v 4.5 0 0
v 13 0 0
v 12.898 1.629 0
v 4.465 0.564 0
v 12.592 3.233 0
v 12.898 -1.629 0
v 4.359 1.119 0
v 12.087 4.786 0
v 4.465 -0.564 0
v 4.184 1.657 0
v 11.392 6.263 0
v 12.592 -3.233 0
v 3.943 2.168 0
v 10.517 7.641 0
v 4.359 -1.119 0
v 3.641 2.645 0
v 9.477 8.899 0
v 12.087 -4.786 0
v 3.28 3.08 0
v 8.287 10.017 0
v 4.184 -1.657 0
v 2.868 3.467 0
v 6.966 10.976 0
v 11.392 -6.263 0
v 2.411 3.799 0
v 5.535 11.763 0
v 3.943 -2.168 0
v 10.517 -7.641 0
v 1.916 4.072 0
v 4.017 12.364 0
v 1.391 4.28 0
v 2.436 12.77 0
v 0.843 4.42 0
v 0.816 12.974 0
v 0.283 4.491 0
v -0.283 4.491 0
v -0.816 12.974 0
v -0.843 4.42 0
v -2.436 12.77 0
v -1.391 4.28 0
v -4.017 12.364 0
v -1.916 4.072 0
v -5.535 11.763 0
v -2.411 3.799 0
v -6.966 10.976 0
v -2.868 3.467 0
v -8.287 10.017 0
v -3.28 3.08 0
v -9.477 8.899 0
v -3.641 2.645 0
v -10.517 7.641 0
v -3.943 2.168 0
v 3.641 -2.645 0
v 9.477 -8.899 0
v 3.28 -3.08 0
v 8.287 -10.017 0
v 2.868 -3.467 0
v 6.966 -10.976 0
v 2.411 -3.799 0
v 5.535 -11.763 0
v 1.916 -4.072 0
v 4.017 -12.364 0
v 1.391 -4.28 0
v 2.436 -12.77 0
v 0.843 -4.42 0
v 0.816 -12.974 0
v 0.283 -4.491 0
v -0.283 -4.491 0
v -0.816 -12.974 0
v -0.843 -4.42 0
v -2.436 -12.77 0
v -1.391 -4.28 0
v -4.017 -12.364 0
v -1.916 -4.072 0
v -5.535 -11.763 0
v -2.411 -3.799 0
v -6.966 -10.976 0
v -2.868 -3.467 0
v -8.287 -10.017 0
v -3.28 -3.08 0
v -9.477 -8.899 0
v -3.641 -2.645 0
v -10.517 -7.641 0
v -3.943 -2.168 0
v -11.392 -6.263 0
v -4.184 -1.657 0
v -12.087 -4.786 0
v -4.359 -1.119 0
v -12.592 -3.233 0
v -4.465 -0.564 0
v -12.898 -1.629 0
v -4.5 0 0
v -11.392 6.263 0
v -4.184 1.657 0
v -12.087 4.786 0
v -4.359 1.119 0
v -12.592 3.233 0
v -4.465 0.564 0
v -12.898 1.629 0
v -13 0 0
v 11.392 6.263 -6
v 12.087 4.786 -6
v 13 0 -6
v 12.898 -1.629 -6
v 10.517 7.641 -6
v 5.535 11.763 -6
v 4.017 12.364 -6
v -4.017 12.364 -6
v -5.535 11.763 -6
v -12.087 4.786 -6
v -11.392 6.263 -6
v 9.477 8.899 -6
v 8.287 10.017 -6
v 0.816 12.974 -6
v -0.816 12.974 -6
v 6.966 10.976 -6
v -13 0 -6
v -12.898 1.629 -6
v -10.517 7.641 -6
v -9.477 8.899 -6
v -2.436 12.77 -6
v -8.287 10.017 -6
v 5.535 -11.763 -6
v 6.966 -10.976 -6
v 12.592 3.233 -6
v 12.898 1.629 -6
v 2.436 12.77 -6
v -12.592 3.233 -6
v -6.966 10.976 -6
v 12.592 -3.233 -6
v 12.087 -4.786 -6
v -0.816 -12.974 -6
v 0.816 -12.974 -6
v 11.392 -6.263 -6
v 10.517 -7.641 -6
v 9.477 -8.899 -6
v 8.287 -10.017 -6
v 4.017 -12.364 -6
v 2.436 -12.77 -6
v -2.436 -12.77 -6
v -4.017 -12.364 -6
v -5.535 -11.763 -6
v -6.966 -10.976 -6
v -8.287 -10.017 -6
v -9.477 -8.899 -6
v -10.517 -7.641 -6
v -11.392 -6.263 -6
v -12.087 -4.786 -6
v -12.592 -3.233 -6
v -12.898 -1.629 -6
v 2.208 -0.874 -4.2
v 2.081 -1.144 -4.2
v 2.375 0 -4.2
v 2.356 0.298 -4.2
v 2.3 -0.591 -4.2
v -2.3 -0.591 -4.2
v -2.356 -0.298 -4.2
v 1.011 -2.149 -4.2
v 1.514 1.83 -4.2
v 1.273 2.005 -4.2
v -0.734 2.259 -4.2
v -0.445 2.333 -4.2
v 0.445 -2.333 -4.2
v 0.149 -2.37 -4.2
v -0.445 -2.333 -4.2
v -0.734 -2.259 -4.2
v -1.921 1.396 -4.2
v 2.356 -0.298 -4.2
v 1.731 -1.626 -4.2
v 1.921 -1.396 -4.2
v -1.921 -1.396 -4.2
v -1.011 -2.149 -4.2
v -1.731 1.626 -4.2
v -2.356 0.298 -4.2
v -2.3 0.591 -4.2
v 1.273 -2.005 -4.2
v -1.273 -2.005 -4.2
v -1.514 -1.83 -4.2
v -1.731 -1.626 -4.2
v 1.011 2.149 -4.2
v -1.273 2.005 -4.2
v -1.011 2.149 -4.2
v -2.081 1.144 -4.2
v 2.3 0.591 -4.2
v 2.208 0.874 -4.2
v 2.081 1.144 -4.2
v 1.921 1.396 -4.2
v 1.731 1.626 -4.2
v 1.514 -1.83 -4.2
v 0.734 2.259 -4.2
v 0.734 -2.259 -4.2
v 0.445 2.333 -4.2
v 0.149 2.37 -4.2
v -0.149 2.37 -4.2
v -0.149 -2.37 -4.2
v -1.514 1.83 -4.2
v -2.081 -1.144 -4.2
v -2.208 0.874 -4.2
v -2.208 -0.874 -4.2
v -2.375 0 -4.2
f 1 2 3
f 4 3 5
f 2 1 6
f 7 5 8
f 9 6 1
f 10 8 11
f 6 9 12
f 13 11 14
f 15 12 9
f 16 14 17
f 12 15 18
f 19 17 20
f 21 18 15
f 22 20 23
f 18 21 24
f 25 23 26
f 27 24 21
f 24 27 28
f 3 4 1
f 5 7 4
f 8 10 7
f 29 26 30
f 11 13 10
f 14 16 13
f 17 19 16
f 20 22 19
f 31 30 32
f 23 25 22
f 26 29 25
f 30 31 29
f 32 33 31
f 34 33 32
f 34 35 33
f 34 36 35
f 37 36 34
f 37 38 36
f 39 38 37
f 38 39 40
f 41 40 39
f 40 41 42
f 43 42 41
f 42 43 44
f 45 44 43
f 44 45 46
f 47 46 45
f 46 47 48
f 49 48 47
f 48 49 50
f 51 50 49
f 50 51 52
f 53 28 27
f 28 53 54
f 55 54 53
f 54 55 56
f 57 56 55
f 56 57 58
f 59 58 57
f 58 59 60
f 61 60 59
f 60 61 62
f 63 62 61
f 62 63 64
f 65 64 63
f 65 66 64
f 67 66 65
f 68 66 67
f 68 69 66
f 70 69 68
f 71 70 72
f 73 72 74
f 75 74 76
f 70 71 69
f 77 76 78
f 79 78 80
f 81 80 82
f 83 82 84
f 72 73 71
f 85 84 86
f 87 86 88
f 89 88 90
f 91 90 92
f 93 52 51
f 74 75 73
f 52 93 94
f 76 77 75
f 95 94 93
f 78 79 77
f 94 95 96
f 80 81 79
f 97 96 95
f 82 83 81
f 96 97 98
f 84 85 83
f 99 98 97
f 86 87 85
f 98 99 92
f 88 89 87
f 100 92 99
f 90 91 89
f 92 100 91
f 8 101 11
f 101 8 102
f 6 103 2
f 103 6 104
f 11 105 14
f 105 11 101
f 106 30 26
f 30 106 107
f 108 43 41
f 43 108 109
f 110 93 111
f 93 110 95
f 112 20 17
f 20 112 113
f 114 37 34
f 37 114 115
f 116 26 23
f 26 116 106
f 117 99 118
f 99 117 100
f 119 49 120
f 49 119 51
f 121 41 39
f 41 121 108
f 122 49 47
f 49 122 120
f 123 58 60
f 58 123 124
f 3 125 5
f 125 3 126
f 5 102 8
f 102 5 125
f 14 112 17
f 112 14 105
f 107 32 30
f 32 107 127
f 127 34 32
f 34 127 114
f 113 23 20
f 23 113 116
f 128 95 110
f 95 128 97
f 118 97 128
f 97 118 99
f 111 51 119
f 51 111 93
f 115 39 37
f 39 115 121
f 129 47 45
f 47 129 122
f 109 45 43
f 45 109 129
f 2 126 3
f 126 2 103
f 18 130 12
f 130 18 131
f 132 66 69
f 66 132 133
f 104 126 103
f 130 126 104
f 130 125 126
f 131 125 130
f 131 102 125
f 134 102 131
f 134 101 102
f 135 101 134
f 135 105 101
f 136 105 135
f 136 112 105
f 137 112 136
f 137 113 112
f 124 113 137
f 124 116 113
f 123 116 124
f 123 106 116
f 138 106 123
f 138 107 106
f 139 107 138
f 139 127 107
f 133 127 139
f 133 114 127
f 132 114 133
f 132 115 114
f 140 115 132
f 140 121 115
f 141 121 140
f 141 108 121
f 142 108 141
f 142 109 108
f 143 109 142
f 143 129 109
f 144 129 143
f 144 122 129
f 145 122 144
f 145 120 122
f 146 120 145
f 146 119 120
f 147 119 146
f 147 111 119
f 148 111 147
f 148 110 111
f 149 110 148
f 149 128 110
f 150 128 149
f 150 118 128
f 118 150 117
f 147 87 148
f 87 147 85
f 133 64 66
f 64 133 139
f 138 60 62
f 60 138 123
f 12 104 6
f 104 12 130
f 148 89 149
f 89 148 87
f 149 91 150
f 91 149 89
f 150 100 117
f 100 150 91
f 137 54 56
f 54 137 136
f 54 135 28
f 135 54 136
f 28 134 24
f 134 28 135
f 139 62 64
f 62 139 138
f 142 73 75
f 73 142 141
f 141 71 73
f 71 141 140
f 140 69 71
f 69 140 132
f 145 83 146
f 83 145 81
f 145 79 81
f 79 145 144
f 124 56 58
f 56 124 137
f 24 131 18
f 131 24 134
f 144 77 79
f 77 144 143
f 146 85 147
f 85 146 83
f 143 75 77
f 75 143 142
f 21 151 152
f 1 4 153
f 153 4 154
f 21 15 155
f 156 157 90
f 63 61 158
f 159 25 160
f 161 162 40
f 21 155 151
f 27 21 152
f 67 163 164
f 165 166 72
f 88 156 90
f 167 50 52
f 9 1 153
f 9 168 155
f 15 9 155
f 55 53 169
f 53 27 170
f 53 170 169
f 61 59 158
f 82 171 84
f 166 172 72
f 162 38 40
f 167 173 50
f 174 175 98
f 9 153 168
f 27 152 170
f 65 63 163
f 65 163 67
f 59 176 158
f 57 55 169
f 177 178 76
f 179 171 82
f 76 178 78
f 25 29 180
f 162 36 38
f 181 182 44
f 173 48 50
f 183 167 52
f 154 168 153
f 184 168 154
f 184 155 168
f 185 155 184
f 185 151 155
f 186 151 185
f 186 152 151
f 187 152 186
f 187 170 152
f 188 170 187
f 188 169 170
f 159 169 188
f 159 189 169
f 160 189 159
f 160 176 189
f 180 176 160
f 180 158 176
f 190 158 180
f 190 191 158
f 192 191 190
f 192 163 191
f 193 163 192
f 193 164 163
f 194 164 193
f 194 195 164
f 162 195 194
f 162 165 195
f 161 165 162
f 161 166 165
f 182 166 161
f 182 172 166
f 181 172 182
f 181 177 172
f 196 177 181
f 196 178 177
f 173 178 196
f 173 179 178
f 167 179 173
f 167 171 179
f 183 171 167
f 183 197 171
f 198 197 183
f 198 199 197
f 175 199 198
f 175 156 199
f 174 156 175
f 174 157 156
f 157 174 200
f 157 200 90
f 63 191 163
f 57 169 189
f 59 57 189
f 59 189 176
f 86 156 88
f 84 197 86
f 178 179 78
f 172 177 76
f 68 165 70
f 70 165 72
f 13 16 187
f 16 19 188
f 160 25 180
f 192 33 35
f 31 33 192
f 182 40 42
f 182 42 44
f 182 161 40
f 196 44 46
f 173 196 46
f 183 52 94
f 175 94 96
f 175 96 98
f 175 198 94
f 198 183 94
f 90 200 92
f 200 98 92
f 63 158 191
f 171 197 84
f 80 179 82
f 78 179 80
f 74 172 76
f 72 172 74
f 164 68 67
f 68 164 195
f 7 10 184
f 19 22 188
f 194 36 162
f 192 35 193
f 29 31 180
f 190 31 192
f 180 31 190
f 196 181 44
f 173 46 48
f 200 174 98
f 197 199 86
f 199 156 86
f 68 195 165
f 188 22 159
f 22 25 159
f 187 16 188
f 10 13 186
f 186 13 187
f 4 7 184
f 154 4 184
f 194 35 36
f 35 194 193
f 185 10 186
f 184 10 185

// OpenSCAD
$fn = 50;


difference() {
	union() {
		translate(v = [0, 0, -3.0000000000]) {
			cylinder(h = 3, r = 10.0000000000);
		}
		translate(v = [0, 0, -6.0000000000]) {
			cylinder(h = 6, r = 13.0000000000);
		}
	}
	union() {
		translate(v = [0, 0, 0]) {
			rotate(a = [0, 0, 0]) {
				difference() {
					union() {
						#translate(v = [0, 0, -3.0000000000]) {
							cylinder(h = 3, r = 2.2500000000);
						}
						#translate(v = [0, 0, -4.2000000000]) {
							cylinder(h = 4.2000000000, r = 10.0000000000, r1 = 2.3750000000, r2 = 4.5000000000);
						}
						#translate(v = [0, 0, -3.0000000000]) {
							cylinder(h = 3, r = 2.3750000000);
						}
						#translate(v = [0, 0, -3.0000000000]) {
							cylinder(h = 3, r = 2.2500000000);
						}
					}
					union();
				}
			}
		}
	}
}
